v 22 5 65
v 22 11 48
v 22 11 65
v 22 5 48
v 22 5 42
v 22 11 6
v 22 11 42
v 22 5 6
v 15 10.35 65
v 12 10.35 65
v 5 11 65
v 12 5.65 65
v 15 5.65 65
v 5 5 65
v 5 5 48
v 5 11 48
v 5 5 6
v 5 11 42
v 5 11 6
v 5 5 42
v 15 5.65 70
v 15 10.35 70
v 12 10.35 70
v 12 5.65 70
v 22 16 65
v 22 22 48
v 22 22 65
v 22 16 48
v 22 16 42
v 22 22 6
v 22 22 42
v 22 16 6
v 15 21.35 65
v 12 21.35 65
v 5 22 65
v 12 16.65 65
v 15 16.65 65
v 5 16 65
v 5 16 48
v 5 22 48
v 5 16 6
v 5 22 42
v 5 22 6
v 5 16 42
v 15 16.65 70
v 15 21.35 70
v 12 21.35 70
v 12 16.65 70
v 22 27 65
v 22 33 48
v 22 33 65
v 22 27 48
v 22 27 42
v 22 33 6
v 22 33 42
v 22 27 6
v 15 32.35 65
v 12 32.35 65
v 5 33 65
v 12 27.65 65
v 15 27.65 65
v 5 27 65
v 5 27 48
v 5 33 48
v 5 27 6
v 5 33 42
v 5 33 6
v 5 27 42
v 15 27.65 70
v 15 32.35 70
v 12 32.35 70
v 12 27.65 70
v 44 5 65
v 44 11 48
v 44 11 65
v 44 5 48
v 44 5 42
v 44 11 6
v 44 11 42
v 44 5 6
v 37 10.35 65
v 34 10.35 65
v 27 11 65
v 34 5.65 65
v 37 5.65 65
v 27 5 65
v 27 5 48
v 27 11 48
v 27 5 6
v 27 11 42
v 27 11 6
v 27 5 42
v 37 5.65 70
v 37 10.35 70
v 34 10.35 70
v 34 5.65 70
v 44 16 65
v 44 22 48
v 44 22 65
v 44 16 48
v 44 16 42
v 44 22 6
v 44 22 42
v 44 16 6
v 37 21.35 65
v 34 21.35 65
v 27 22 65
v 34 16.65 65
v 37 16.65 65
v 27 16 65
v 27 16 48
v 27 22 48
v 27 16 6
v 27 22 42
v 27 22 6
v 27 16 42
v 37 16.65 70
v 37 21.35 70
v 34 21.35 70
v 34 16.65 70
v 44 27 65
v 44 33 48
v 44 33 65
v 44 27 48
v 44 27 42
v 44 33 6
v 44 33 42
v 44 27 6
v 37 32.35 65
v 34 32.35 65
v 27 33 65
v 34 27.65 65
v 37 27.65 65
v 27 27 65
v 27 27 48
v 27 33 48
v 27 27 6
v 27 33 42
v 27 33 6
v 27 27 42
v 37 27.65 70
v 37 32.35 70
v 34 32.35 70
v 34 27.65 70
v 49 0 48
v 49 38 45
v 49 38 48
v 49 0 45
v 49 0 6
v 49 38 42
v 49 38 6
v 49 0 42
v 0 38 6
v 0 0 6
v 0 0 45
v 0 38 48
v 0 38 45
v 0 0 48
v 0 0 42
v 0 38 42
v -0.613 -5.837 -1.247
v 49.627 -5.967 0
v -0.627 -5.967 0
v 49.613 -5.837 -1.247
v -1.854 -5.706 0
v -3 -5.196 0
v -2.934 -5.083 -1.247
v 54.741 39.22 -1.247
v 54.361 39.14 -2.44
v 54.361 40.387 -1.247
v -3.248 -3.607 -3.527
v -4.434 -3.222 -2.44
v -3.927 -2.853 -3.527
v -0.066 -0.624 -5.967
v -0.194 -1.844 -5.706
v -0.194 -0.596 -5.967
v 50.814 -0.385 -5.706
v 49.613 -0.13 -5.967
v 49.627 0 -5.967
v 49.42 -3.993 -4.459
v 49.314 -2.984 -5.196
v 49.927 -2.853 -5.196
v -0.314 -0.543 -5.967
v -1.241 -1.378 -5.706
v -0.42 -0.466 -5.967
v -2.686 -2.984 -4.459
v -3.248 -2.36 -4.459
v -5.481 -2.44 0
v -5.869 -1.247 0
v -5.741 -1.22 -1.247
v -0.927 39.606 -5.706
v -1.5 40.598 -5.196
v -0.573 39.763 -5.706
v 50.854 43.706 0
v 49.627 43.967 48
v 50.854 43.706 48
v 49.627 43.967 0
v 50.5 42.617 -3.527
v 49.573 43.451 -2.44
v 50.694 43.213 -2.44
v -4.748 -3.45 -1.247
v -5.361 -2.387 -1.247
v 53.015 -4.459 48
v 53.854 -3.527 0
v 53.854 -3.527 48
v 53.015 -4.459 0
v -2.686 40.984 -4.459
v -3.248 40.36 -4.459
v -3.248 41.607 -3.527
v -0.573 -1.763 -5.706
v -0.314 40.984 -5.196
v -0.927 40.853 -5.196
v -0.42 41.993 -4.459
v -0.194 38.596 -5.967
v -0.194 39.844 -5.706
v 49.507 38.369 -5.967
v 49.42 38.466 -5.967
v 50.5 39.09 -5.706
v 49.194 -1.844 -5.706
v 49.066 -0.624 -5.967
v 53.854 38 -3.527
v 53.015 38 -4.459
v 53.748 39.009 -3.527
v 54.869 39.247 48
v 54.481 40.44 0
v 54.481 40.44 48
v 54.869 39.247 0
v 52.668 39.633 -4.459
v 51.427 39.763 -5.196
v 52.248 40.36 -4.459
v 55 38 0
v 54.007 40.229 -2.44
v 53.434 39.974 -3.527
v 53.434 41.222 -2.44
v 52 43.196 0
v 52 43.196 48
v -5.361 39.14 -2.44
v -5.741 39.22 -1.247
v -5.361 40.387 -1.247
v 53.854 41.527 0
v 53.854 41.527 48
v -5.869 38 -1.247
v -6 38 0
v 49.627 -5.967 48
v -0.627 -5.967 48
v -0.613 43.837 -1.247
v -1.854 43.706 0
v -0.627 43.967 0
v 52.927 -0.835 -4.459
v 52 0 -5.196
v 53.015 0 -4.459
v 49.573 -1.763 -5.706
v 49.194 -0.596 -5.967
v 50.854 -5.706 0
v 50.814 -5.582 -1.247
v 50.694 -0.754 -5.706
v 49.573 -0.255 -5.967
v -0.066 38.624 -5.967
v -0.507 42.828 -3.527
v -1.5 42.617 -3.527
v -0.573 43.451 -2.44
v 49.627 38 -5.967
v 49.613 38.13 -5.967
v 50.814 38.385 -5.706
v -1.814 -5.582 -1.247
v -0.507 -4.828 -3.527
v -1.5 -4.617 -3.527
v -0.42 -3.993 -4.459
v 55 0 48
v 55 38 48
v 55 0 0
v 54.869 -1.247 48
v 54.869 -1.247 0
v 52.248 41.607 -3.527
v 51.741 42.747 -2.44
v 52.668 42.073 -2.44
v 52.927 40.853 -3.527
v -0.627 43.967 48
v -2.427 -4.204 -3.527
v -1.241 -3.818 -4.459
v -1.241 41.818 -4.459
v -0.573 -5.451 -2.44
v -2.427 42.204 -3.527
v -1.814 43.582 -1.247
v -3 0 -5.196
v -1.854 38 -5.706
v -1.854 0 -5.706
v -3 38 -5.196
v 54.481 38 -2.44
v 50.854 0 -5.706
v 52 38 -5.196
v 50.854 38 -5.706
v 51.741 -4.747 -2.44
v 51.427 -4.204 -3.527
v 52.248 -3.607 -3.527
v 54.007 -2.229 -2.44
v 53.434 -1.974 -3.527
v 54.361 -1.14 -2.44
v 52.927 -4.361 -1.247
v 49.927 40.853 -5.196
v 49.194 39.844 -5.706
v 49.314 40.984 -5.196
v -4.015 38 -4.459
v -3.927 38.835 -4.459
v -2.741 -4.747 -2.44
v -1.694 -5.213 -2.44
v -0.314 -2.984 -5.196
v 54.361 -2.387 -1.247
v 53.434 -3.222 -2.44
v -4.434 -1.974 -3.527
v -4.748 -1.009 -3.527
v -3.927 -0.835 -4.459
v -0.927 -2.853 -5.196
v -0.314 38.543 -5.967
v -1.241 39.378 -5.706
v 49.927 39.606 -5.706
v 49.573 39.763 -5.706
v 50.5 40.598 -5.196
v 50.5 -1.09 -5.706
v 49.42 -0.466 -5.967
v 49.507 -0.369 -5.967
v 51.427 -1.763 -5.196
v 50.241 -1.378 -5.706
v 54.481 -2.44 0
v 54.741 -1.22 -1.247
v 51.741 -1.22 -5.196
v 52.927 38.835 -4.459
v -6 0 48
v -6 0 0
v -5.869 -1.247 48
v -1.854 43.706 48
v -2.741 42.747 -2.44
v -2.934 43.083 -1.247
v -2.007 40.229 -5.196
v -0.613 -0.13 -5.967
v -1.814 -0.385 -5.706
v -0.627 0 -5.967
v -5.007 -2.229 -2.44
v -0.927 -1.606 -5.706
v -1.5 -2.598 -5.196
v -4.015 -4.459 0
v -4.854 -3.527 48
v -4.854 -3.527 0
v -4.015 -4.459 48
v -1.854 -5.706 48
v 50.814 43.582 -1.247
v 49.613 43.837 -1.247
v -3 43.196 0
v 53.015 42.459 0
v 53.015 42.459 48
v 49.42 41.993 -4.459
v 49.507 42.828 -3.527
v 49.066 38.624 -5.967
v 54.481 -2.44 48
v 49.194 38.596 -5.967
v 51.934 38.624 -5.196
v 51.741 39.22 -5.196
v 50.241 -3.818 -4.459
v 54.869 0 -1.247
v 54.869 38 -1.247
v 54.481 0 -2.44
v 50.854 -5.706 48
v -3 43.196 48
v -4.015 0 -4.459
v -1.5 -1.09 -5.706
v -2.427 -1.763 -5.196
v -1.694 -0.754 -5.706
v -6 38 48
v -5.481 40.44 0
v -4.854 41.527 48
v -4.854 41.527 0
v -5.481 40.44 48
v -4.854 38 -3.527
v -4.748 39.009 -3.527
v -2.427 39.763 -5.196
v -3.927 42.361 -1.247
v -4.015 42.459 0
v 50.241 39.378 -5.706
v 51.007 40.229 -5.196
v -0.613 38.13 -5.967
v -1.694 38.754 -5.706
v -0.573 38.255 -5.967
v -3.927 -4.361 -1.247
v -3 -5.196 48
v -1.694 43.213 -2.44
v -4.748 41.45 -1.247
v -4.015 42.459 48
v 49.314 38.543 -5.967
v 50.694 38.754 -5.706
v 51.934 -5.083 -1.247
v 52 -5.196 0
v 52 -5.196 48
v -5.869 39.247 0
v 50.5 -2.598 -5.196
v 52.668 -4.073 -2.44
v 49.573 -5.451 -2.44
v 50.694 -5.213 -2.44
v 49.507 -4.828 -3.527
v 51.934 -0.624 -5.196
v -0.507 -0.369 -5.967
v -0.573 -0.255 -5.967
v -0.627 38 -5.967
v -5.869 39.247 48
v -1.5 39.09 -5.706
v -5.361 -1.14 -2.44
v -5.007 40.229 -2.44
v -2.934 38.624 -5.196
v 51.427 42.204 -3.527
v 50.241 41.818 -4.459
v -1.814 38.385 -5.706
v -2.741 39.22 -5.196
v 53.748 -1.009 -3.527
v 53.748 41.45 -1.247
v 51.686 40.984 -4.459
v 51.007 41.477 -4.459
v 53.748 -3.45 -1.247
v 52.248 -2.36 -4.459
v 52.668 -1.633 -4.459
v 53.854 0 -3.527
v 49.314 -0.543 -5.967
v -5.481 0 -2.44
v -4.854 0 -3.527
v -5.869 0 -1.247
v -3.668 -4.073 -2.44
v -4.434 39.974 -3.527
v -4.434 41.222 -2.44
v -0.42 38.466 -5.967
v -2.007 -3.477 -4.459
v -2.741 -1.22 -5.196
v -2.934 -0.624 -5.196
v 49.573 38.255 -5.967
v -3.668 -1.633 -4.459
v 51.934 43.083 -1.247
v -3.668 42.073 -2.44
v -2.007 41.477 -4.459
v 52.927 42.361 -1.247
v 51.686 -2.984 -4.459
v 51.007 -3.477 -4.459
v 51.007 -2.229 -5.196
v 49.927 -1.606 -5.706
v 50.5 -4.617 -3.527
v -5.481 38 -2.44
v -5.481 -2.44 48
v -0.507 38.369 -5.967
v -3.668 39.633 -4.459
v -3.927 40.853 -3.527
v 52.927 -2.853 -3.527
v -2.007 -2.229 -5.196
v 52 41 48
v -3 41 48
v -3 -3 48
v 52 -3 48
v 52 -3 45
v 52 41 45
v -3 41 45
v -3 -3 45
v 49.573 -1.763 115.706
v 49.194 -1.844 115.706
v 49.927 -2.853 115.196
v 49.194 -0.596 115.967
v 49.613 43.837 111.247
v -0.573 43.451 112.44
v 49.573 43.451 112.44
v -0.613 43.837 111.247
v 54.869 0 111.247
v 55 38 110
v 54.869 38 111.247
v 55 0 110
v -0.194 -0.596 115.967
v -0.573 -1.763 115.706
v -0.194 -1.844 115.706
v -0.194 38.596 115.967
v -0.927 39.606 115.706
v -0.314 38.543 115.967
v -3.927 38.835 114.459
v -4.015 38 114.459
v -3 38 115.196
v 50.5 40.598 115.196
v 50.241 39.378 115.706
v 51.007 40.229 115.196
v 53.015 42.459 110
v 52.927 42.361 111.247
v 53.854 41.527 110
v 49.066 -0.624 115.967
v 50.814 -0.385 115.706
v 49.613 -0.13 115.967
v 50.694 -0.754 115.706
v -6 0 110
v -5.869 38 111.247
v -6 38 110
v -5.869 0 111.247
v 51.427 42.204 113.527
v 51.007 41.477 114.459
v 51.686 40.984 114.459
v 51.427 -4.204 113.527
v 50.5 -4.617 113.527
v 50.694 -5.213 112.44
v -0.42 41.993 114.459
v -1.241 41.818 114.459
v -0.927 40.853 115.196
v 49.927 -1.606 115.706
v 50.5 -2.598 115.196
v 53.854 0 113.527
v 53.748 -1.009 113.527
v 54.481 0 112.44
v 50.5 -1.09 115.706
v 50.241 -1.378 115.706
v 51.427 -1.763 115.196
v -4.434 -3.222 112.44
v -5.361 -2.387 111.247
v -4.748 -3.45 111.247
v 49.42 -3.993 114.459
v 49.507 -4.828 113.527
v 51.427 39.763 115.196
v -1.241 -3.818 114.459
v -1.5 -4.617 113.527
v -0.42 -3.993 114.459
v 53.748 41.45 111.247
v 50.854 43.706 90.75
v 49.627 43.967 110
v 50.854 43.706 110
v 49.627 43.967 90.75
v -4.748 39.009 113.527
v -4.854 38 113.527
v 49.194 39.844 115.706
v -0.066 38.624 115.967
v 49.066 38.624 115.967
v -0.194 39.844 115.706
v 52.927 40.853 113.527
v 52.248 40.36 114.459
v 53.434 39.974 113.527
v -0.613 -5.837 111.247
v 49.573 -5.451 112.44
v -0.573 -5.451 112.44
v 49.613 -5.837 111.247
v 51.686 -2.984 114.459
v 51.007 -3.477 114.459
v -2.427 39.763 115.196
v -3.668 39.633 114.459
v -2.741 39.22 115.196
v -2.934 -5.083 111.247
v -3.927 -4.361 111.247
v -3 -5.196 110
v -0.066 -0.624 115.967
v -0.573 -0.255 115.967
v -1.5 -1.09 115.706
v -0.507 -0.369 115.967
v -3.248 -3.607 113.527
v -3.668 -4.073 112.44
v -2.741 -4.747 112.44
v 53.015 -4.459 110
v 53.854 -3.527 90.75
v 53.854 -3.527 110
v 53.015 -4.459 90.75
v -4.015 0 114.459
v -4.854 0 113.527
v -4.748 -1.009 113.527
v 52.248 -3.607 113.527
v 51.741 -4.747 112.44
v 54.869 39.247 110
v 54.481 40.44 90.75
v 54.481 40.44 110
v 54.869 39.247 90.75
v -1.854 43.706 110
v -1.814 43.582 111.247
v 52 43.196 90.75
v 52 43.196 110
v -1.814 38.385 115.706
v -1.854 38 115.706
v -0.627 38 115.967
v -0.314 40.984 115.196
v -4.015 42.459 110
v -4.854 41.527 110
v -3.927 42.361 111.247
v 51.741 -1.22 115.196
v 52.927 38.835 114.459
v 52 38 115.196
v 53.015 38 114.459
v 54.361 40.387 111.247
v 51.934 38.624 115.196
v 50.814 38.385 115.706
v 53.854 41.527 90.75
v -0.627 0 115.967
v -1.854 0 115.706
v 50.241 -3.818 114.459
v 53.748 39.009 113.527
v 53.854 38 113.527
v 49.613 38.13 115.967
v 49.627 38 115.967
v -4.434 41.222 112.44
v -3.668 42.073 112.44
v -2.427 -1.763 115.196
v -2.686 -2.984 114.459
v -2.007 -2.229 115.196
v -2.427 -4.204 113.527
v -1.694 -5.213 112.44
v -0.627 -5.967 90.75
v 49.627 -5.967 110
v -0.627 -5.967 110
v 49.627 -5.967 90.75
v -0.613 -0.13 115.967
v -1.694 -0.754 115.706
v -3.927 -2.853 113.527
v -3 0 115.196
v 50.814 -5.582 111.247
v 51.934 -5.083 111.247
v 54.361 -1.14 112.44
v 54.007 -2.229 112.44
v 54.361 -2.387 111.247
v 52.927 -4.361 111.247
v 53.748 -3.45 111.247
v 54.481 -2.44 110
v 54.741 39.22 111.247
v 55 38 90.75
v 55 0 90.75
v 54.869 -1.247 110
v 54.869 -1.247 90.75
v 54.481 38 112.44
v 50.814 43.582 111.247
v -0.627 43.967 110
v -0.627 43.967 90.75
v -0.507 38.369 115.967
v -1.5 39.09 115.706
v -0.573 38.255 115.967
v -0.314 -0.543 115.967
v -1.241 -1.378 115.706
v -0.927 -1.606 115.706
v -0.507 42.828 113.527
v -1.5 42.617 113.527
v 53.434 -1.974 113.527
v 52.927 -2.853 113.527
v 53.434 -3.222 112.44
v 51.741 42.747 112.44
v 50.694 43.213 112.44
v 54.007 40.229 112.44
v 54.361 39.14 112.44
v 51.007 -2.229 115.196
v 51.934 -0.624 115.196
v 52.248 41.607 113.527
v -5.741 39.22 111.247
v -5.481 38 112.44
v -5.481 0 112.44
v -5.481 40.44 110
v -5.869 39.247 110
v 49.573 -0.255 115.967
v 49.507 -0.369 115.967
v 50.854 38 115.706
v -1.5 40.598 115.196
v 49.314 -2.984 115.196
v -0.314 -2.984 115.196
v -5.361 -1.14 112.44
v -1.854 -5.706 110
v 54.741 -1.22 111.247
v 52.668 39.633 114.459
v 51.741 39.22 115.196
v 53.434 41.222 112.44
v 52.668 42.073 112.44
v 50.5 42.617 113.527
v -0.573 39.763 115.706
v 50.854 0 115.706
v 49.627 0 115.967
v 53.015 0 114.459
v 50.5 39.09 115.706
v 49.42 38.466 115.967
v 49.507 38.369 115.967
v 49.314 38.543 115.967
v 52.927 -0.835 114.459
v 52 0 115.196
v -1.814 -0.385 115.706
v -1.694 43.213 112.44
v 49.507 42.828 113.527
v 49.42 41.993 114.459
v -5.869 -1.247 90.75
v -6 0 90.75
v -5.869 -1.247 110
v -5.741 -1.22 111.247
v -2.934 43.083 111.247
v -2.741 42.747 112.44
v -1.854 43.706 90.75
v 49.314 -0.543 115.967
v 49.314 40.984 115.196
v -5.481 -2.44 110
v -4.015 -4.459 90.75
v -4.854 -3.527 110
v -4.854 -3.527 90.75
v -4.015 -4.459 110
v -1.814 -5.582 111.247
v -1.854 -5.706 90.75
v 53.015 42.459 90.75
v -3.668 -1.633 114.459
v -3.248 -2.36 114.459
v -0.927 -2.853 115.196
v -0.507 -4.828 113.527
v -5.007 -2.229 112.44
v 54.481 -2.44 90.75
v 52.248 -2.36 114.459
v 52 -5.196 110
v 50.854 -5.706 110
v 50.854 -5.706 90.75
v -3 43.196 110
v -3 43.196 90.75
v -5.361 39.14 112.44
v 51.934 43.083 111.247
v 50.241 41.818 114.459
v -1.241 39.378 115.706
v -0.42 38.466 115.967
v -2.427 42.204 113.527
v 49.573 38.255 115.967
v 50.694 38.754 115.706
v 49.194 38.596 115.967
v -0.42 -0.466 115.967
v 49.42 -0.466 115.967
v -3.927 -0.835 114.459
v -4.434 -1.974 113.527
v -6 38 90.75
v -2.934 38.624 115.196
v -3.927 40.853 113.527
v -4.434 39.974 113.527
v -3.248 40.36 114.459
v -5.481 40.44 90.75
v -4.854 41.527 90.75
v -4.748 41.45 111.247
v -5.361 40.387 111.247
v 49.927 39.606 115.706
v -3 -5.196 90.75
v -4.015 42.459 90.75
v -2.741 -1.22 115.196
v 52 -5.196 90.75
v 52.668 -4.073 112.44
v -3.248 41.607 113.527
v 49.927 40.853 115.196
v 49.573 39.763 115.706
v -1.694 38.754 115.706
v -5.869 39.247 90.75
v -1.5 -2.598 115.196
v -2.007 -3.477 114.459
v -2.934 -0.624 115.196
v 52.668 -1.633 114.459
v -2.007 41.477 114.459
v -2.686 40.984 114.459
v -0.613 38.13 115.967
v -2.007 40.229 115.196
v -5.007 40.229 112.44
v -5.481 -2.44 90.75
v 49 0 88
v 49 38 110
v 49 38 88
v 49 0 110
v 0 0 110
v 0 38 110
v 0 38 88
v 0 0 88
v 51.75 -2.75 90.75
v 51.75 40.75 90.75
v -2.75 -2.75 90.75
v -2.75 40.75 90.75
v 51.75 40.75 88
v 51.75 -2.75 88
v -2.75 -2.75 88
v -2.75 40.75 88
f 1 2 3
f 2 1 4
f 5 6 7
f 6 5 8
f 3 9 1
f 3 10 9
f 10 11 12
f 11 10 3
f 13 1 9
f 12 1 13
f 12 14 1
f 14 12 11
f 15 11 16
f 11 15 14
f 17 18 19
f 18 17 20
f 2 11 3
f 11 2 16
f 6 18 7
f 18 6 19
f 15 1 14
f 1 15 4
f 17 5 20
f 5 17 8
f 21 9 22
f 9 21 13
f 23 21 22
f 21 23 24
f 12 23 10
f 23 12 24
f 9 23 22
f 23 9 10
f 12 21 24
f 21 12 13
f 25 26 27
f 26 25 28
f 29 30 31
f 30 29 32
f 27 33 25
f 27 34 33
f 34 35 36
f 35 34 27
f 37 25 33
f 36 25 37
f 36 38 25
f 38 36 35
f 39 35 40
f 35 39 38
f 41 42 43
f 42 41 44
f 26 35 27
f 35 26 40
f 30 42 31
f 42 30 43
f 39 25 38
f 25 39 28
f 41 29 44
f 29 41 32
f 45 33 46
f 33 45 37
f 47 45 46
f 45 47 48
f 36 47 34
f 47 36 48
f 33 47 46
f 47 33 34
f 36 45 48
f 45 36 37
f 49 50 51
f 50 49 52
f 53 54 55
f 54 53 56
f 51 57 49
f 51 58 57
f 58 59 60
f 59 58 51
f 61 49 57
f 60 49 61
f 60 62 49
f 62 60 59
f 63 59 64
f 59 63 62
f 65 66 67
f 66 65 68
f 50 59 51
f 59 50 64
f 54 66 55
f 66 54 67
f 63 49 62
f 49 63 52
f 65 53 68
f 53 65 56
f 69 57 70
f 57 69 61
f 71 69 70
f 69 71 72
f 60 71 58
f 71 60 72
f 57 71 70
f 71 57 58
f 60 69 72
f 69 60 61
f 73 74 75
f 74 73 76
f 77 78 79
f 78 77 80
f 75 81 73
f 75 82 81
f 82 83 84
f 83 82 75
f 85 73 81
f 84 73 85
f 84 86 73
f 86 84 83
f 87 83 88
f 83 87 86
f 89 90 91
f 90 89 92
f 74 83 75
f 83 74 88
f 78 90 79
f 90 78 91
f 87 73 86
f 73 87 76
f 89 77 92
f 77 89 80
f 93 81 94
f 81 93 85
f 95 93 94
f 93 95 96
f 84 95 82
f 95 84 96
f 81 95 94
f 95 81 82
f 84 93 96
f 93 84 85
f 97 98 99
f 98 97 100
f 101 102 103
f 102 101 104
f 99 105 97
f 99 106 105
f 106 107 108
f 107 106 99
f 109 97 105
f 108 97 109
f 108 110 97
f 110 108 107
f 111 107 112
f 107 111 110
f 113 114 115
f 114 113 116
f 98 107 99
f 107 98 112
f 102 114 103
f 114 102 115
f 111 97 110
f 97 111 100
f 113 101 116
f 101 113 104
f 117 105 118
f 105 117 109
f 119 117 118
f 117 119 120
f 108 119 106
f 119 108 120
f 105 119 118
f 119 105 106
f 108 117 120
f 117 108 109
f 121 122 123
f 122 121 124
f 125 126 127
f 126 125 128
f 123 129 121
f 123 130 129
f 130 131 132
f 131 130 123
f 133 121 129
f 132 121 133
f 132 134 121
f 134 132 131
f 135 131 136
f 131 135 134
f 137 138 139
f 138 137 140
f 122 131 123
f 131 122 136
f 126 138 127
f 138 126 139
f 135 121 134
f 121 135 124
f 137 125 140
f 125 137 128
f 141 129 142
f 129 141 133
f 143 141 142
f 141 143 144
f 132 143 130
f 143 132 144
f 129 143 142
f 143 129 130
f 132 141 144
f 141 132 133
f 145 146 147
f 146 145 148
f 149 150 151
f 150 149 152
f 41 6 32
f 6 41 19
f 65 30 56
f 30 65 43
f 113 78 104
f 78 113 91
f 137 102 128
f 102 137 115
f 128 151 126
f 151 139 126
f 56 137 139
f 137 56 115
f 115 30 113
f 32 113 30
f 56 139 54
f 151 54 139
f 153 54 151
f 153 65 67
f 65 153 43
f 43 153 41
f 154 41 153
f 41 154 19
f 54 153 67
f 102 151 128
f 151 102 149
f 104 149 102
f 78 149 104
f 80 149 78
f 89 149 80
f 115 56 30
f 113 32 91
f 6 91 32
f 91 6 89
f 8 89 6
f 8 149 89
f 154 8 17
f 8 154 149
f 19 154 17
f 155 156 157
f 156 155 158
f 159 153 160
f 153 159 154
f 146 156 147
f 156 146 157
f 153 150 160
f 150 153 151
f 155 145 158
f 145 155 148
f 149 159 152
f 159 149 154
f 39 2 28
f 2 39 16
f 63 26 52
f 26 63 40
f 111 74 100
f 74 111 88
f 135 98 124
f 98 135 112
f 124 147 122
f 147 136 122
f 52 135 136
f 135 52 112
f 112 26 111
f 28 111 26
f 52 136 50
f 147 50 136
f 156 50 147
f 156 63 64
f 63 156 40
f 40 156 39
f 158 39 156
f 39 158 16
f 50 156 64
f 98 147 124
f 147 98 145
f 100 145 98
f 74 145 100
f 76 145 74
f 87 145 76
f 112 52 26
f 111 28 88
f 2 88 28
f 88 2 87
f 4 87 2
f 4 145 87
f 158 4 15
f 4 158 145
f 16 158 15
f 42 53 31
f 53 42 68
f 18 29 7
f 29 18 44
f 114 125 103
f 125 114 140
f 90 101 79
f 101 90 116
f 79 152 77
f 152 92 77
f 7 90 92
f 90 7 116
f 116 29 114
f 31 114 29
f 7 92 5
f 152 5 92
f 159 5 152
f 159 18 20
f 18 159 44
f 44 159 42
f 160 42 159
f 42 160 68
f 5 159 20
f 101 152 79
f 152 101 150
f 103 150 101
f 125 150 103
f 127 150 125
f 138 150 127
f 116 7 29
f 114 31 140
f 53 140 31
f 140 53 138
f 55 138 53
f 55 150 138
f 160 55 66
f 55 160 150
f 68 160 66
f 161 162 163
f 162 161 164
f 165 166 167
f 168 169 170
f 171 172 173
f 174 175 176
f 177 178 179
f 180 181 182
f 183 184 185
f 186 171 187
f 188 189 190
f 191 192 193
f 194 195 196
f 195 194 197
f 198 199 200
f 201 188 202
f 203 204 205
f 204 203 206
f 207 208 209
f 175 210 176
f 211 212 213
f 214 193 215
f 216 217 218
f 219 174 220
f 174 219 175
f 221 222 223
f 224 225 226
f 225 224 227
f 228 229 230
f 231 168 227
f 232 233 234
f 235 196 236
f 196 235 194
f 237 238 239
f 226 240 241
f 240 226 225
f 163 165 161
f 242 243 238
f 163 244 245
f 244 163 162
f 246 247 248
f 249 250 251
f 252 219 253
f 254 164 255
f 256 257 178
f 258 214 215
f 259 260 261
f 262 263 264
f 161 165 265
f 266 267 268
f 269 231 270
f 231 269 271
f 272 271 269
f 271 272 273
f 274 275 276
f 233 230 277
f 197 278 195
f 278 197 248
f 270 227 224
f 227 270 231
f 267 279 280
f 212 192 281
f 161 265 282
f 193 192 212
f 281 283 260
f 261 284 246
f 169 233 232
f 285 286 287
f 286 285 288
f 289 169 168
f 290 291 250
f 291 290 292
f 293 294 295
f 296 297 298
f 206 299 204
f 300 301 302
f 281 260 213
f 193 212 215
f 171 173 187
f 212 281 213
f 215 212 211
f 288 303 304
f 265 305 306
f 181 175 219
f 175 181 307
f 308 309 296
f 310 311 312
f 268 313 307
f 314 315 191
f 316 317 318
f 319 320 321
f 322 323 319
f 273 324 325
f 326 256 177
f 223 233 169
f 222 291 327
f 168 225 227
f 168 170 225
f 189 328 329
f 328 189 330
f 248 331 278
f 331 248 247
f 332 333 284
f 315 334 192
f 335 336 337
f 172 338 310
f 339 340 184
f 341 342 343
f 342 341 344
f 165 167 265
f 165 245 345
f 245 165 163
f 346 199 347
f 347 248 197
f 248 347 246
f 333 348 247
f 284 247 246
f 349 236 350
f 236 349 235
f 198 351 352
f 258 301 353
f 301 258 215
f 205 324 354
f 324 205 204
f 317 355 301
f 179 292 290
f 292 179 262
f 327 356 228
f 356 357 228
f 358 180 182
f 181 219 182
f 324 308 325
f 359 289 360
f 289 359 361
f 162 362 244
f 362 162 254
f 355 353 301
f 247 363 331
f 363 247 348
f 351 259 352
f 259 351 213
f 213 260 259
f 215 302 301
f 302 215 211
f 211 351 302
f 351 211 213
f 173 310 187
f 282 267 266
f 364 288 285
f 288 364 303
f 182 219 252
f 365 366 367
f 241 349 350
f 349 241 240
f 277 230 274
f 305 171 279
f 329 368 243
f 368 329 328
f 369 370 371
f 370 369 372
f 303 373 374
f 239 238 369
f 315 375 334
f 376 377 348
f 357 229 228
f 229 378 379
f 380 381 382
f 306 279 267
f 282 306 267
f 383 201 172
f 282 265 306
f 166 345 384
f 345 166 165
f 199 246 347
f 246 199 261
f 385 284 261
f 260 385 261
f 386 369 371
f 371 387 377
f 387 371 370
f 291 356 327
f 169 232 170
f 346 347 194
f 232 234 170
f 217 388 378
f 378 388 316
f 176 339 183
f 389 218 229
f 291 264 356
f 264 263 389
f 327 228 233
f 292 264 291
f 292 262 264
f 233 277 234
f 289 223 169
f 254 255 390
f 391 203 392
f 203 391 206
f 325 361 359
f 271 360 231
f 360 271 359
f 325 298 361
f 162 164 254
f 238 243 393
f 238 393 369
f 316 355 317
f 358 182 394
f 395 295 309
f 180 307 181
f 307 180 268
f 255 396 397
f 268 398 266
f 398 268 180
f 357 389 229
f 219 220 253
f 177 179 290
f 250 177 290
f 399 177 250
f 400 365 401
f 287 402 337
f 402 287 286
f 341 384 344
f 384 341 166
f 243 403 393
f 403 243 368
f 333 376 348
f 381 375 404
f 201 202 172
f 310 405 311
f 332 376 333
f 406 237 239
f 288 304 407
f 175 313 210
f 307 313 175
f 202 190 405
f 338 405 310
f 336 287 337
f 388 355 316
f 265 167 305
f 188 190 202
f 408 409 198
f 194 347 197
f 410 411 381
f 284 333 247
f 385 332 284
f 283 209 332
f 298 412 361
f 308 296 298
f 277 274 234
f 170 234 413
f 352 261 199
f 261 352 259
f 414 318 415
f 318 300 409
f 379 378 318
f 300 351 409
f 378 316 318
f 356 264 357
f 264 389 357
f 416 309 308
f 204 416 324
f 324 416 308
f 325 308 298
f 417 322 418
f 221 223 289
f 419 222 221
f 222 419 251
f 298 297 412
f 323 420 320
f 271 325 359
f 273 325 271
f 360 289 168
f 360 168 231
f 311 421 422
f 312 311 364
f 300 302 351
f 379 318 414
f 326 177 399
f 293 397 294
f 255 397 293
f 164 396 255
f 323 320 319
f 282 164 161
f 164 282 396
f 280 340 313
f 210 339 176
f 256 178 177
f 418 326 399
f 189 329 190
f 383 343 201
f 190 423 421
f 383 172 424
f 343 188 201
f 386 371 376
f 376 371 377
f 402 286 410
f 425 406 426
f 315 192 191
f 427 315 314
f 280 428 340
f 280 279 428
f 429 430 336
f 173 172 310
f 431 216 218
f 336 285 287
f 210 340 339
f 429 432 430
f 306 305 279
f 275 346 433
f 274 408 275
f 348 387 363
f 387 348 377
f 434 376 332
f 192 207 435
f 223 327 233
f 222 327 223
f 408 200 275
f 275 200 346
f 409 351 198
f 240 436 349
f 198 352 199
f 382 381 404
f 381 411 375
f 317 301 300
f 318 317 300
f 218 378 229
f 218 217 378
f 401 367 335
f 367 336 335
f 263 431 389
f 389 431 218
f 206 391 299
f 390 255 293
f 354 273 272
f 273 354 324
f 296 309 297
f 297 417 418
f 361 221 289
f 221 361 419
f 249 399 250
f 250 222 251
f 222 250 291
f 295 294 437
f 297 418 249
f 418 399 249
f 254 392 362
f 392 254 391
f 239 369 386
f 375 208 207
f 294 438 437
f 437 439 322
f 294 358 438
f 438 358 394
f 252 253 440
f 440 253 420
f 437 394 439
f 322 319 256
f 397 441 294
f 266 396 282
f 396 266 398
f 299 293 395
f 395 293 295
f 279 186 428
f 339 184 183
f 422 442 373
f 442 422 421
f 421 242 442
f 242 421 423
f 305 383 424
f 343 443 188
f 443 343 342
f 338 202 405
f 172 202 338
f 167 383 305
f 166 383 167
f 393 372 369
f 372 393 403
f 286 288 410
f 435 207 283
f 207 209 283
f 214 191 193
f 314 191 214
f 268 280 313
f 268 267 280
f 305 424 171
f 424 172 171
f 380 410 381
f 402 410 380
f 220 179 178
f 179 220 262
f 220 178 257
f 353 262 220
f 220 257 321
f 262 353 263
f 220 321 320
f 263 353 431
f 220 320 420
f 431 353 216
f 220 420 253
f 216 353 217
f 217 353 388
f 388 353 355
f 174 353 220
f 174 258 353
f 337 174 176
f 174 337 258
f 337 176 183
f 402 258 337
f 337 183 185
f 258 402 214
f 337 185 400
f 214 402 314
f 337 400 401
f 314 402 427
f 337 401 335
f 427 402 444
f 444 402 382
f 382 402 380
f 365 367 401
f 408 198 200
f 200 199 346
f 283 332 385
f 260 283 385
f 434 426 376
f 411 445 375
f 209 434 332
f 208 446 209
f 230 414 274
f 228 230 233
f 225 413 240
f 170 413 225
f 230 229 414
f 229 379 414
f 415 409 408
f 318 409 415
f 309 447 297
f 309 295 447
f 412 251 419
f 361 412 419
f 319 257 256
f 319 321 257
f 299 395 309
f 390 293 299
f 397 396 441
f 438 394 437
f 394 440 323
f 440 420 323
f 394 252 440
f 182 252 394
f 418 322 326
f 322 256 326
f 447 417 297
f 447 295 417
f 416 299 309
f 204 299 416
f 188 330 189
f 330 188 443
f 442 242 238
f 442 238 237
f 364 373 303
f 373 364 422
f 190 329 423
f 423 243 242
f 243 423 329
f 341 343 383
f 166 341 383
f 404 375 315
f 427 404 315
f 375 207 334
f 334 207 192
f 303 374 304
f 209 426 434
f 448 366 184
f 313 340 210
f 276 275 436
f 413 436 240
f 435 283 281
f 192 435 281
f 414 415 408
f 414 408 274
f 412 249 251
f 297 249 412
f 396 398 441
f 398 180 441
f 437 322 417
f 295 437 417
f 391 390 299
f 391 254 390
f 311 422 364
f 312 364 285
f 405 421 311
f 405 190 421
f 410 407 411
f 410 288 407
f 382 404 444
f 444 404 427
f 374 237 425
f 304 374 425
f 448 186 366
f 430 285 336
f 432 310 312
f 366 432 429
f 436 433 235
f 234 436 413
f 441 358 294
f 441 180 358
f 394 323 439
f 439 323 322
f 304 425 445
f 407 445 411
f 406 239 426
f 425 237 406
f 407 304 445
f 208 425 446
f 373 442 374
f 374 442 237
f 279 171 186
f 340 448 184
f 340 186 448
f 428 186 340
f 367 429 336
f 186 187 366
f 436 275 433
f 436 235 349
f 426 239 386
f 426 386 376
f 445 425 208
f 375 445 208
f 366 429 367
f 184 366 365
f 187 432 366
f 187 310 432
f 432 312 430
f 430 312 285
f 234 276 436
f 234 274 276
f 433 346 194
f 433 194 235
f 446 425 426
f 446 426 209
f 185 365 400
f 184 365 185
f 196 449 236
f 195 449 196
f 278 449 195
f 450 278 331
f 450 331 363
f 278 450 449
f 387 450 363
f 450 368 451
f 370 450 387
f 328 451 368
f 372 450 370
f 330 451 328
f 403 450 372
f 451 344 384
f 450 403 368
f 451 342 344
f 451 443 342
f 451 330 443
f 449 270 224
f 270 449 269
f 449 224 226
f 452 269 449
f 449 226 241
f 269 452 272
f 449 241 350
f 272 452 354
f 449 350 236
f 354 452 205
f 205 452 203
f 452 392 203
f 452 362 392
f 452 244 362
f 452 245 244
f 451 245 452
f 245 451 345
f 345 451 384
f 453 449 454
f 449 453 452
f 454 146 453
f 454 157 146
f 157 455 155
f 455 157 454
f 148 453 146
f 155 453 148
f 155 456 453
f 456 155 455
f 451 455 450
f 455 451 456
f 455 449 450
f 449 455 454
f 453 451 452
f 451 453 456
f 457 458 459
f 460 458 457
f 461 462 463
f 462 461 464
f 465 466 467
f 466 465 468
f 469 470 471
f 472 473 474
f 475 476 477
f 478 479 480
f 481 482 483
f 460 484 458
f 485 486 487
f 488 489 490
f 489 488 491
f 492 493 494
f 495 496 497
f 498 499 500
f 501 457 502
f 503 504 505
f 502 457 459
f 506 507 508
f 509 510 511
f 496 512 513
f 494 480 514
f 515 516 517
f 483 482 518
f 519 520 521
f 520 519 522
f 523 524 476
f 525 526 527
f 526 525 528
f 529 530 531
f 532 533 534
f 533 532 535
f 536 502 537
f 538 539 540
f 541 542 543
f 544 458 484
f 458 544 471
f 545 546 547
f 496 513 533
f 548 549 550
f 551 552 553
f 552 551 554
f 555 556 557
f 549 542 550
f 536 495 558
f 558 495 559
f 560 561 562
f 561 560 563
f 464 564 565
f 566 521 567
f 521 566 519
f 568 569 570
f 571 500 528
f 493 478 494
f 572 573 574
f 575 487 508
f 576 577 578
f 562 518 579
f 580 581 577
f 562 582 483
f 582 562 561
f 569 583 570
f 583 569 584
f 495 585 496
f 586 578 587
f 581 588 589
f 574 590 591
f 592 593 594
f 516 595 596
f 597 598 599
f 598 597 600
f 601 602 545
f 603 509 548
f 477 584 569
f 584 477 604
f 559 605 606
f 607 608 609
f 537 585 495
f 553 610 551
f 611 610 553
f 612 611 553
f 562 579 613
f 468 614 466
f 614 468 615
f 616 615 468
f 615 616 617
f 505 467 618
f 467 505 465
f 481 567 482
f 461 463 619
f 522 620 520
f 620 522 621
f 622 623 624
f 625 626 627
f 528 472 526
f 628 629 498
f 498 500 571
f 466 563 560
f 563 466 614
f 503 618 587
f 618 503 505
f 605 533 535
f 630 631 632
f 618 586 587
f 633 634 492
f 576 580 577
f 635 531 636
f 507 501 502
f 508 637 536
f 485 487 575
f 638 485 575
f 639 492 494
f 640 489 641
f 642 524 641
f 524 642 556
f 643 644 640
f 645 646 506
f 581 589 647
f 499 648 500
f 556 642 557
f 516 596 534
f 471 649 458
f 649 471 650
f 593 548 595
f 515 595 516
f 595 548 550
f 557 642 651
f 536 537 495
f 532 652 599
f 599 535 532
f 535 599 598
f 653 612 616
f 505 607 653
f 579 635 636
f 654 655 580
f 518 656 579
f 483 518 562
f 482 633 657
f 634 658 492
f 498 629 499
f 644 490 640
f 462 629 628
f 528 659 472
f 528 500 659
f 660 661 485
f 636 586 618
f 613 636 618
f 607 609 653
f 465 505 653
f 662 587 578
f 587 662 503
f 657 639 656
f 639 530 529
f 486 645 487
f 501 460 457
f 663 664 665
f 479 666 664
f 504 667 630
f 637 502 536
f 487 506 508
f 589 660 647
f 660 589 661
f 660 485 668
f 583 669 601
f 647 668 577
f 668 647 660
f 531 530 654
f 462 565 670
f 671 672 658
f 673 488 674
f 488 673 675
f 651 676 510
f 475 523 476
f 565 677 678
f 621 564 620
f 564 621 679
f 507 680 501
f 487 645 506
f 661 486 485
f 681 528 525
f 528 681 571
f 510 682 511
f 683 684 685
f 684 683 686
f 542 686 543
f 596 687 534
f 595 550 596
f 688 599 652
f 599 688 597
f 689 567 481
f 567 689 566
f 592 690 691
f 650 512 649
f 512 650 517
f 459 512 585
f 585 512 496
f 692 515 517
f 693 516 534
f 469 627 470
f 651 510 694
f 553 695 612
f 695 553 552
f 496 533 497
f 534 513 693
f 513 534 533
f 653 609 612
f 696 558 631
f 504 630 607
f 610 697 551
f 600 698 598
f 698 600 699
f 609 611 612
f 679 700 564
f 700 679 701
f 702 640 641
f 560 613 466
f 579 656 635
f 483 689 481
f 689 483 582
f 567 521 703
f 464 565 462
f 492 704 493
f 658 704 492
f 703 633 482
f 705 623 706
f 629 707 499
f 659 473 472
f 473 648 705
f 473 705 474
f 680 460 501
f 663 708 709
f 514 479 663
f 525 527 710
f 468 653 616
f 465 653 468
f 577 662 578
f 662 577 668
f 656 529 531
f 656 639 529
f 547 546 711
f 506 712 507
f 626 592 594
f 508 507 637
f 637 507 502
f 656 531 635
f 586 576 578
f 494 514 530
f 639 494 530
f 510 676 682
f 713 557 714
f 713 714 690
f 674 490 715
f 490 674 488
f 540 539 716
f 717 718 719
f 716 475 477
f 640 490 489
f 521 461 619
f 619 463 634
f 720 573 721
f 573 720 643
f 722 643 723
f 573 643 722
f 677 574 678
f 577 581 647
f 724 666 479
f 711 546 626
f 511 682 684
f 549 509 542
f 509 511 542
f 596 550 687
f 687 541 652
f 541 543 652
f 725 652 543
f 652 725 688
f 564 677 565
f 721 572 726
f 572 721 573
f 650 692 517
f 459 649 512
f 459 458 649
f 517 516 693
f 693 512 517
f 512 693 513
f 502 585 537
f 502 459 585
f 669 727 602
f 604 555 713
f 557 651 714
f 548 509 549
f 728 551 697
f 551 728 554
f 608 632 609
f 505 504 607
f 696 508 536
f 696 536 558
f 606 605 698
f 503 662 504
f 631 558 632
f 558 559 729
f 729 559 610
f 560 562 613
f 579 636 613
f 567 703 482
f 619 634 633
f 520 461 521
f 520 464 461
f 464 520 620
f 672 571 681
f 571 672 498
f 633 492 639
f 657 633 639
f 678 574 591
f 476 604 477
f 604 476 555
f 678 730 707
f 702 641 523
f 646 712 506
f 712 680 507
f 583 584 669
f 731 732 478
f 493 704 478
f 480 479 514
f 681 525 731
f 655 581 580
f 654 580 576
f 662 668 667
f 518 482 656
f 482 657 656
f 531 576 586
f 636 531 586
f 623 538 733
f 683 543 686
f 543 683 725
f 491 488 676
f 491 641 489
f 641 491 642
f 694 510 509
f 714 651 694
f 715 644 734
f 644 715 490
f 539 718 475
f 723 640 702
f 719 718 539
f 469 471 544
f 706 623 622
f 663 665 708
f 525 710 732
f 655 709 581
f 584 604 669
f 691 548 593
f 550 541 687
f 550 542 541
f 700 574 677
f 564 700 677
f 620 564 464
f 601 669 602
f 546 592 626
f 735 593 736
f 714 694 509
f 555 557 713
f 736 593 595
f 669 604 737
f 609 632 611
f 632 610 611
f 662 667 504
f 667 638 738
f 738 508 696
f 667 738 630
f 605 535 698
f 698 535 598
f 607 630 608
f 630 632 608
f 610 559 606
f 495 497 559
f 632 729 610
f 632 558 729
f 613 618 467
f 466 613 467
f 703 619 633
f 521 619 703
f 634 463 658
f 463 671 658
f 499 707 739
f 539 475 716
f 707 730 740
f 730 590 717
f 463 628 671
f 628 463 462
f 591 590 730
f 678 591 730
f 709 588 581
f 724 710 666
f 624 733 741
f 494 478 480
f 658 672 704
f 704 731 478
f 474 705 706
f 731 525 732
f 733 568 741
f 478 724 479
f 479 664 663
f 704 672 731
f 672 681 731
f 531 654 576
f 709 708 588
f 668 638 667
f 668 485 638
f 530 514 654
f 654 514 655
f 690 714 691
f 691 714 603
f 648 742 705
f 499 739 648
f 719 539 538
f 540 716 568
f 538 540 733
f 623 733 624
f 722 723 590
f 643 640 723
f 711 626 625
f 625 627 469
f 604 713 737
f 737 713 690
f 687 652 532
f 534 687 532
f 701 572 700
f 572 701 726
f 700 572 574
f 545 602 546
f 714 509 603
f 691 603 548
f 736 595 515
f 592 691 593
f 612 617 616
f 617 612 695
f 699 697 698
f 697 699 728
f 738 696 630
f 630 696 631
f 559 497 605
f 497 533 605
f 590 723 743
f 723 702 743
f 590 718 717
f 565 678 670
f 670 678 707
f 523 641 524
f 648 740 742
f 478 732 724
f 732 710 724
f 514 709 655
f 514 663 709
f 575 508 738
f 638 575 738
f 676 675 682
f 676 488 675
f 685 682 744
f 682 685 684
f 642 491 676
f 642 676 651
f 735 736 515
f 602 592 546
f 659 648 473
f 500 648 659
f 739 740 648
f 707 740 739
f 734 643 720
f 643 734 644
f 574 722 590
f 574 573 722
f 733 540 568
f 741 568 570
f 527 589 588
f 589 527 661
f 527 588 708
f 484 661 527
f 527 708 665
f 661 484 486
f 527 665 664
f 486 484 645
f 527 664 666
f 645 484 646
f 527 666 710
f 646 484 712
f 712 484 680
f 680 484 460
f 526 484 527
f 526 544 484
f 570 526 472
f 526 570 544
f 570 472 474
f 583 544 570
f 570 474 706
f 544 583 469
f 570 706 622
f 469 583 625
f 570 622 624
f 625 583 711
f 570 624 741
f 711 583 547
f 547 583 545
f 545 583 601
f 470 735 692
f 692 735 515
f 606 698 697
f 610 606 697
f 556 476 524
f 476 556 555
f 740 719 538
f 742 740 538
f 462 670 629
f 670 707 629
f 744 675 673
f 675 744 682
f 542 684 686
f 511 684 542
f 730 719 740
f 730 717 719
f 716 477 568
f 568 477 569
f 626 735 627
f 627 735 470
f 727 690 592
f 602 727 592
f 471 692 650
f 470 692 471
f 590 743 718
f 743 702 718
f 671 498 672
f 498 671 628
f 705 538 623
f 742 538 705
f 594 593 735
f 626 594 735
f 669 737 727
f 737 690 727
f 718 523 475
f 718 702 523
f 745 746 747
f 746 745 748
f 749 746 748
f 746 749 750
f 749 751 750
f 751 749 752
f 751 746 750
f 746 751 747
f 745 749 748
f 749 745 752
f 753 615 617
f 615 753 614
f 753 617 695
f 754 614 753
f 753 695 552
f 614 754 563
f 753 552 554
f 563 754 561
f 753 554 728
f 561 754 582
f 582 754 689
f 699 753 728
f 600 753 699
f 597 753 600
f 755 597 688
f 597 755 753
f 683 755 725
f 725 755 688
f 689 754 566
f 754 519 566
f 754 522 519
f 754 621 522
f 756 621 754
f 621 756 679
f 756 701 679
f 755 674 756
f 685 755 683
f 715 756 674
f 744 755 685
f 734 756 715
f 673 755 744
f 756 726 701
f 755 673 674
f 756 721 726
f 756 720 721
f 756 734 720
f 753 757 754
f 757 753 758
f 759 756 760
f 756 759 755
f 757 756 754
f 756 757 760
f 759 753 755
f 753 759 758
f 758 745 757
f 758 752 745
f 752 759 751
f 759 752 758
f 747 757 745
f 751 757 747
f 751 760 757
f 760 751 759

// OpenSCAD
translate ([5, 5, 0]) {
  translate ([17/2, 3, 65/2]) {
    union () {
      cube ([17, 6, 65], center=true);
      translate ([0, 0, 35]) {
        cube ([3, 4.7, 5], center=true);
      }
    }
  }
}
translate ([5, 16, 0]) {
  translate ([17/2, 3, 65/2]) {
    union () {
      cube ([17, 6, 65], center=true);
      translate ([0, 0, 35]) {
        cube ([3, 4.7, 5], center=true);
      }
    }
  }
}
translate ([5, 27, 0]) {
  translate ([17/2, 3, 65/2]) {
    union () {
      cube ([17, 6, 65], center=true);
      translate ([0, 0, 35]) {
        cube ([3, 4.7, 5], center=true);
      }
    }
  }
}
translate ([27, 5, 0]) {
  translate ([17/2, 3, 65/2]) {
    union () {
      cube ([17, 6, 65], center=true);
      translate ([0, 0, 35]) {
        cube ([3, 4.7, 5], center=true);
      }
    }
  }
}
translate ([27, 16, 0]) {
  translate ([17/2, 3, 65/2]) {
    union () {
      cube ([17, 6, 65], center=true);
      translate ([0, 0, 35]) {
        cube ([3, 4.7, 5], center=true);
      }
    }
  }
}
translate ([27, 27, 0]) {
  translate ([17/2, 3, 65/2]) {
    union () {
      cube ([17, 6, 65], center=true);
      translate ([0, 0, 35]) {
        cube ([3, 4.7, 5], center=true);
      }
    }
  }
}
color ([0, 0, 1, ]) {
  difference () {
    translate ([49/2, 19, 3]) {
      cube ([49, 38, 6], center=true);
    }
    translate ([5, 5, 0]) {
      translate ([17/2, 3, 0]) {
        cube ([17, 6, 1000], center=true);
      }
    }
    translate ([5, 16, 0]) {
      translate ([17/2, 3, 0]) {
        cube ([17, 6, 1000], center=true);
      }
    }
    translate ([5, 27, 0]) {
      translate ([17/2, 3, 0]) {
        cube ([17, 6, 1000], center=true);
      }
    }
    translate ([27, 5, 0]) {
      translate ([17/2, 3, 0]) {
        cube ([17, 6, 1000], center=true);
      }
    }
    translate ([27, 16, 0]) {
      translate ([17/2, 3, 0]) {
        cube ([17, 6, 1000], center=true);
      }
    }
    translate ([27, 27, 0]) {
      translate ([17/2, 3, 0]) {
        cube ([17, 6, 1000], center=true);
      }
    }
  }
}
color ([0, 0, 1, ]) {
  translate ([0, 0, 42]) {
    difference () {
      translate ([49/2, 19, 3]) {
        cube ([49, 38, 6], center=true);
      }
      translate ([5, 5, 0]) {
        translate ([17/2, 3, 0]) {
          cube ([17, 6, 1000], center=true);
        }
      }
      translate ([5, 16, 0]) {
        translate ([17/2, 3, 0]) {
          cube ([17, 6, 1000], center=true);
        }
      }
      translate ([5, 27, 0]) {
        translate ([17/2, 3, 0]) {
          cube ([17, 6, 1000], center=true);
        }
      }
      translate ([27, 5, 0]) {
        translate ([17/2, 3, 0]) {
          cube ([17, 6, 1000], center=true);
        }
      }
      translate ([27, 16, 0]) {
        translate ([17/2, 3, 0]) {
          cube ([17, 6, 1000], center=true);
        }
      }
      translate ([27, 27, 0]) {
        translate ([17/2, 3, 0]) {
          cube ([17, 6, 1000], center=true);
        }
      }
    }
  }
}
color ([1, 0, 0, ]) {
  difference () {
    translate ([49/2, 19, 35]) {
      difference () {
        minkowski () {
          cube ([49, 38, 70], center=true);
          sphere ($fn=30, r=6);
        }
        cube ([49, 38, 70], center=true);
      }
    }
    union () {
      translate ([0, 0, 148]) {
        cube ([200, 200, 200], center=true);
      }
      translate ([49/2, 19, 148]) {
        cube ([55, 44, 206], center=true);
      }
    }
  }
}
color ([1, 0, 0, ]) {
  translate ([0, 0, 40]) {
    difference () {
      translate ([49/2, 19, 35]) {
        difference () {
          minkowski () {
            cube ([49, 38, 70], center=true);
            sphere ($fn=30, r=6);
          }
          cube ([49, 38, 70], center=true);
        }
      }
      translate ([0, 0, -52]) {
        cube ([200, 200, 200], center=true);
      }
      translate ([24.5, 19.0, -49.25]) {
        difference () {
          cube ([300, 300, 200], center=true);
          cube ([54.5, 43.5, 300], center=true);
        }
      }
    }
  }
}
